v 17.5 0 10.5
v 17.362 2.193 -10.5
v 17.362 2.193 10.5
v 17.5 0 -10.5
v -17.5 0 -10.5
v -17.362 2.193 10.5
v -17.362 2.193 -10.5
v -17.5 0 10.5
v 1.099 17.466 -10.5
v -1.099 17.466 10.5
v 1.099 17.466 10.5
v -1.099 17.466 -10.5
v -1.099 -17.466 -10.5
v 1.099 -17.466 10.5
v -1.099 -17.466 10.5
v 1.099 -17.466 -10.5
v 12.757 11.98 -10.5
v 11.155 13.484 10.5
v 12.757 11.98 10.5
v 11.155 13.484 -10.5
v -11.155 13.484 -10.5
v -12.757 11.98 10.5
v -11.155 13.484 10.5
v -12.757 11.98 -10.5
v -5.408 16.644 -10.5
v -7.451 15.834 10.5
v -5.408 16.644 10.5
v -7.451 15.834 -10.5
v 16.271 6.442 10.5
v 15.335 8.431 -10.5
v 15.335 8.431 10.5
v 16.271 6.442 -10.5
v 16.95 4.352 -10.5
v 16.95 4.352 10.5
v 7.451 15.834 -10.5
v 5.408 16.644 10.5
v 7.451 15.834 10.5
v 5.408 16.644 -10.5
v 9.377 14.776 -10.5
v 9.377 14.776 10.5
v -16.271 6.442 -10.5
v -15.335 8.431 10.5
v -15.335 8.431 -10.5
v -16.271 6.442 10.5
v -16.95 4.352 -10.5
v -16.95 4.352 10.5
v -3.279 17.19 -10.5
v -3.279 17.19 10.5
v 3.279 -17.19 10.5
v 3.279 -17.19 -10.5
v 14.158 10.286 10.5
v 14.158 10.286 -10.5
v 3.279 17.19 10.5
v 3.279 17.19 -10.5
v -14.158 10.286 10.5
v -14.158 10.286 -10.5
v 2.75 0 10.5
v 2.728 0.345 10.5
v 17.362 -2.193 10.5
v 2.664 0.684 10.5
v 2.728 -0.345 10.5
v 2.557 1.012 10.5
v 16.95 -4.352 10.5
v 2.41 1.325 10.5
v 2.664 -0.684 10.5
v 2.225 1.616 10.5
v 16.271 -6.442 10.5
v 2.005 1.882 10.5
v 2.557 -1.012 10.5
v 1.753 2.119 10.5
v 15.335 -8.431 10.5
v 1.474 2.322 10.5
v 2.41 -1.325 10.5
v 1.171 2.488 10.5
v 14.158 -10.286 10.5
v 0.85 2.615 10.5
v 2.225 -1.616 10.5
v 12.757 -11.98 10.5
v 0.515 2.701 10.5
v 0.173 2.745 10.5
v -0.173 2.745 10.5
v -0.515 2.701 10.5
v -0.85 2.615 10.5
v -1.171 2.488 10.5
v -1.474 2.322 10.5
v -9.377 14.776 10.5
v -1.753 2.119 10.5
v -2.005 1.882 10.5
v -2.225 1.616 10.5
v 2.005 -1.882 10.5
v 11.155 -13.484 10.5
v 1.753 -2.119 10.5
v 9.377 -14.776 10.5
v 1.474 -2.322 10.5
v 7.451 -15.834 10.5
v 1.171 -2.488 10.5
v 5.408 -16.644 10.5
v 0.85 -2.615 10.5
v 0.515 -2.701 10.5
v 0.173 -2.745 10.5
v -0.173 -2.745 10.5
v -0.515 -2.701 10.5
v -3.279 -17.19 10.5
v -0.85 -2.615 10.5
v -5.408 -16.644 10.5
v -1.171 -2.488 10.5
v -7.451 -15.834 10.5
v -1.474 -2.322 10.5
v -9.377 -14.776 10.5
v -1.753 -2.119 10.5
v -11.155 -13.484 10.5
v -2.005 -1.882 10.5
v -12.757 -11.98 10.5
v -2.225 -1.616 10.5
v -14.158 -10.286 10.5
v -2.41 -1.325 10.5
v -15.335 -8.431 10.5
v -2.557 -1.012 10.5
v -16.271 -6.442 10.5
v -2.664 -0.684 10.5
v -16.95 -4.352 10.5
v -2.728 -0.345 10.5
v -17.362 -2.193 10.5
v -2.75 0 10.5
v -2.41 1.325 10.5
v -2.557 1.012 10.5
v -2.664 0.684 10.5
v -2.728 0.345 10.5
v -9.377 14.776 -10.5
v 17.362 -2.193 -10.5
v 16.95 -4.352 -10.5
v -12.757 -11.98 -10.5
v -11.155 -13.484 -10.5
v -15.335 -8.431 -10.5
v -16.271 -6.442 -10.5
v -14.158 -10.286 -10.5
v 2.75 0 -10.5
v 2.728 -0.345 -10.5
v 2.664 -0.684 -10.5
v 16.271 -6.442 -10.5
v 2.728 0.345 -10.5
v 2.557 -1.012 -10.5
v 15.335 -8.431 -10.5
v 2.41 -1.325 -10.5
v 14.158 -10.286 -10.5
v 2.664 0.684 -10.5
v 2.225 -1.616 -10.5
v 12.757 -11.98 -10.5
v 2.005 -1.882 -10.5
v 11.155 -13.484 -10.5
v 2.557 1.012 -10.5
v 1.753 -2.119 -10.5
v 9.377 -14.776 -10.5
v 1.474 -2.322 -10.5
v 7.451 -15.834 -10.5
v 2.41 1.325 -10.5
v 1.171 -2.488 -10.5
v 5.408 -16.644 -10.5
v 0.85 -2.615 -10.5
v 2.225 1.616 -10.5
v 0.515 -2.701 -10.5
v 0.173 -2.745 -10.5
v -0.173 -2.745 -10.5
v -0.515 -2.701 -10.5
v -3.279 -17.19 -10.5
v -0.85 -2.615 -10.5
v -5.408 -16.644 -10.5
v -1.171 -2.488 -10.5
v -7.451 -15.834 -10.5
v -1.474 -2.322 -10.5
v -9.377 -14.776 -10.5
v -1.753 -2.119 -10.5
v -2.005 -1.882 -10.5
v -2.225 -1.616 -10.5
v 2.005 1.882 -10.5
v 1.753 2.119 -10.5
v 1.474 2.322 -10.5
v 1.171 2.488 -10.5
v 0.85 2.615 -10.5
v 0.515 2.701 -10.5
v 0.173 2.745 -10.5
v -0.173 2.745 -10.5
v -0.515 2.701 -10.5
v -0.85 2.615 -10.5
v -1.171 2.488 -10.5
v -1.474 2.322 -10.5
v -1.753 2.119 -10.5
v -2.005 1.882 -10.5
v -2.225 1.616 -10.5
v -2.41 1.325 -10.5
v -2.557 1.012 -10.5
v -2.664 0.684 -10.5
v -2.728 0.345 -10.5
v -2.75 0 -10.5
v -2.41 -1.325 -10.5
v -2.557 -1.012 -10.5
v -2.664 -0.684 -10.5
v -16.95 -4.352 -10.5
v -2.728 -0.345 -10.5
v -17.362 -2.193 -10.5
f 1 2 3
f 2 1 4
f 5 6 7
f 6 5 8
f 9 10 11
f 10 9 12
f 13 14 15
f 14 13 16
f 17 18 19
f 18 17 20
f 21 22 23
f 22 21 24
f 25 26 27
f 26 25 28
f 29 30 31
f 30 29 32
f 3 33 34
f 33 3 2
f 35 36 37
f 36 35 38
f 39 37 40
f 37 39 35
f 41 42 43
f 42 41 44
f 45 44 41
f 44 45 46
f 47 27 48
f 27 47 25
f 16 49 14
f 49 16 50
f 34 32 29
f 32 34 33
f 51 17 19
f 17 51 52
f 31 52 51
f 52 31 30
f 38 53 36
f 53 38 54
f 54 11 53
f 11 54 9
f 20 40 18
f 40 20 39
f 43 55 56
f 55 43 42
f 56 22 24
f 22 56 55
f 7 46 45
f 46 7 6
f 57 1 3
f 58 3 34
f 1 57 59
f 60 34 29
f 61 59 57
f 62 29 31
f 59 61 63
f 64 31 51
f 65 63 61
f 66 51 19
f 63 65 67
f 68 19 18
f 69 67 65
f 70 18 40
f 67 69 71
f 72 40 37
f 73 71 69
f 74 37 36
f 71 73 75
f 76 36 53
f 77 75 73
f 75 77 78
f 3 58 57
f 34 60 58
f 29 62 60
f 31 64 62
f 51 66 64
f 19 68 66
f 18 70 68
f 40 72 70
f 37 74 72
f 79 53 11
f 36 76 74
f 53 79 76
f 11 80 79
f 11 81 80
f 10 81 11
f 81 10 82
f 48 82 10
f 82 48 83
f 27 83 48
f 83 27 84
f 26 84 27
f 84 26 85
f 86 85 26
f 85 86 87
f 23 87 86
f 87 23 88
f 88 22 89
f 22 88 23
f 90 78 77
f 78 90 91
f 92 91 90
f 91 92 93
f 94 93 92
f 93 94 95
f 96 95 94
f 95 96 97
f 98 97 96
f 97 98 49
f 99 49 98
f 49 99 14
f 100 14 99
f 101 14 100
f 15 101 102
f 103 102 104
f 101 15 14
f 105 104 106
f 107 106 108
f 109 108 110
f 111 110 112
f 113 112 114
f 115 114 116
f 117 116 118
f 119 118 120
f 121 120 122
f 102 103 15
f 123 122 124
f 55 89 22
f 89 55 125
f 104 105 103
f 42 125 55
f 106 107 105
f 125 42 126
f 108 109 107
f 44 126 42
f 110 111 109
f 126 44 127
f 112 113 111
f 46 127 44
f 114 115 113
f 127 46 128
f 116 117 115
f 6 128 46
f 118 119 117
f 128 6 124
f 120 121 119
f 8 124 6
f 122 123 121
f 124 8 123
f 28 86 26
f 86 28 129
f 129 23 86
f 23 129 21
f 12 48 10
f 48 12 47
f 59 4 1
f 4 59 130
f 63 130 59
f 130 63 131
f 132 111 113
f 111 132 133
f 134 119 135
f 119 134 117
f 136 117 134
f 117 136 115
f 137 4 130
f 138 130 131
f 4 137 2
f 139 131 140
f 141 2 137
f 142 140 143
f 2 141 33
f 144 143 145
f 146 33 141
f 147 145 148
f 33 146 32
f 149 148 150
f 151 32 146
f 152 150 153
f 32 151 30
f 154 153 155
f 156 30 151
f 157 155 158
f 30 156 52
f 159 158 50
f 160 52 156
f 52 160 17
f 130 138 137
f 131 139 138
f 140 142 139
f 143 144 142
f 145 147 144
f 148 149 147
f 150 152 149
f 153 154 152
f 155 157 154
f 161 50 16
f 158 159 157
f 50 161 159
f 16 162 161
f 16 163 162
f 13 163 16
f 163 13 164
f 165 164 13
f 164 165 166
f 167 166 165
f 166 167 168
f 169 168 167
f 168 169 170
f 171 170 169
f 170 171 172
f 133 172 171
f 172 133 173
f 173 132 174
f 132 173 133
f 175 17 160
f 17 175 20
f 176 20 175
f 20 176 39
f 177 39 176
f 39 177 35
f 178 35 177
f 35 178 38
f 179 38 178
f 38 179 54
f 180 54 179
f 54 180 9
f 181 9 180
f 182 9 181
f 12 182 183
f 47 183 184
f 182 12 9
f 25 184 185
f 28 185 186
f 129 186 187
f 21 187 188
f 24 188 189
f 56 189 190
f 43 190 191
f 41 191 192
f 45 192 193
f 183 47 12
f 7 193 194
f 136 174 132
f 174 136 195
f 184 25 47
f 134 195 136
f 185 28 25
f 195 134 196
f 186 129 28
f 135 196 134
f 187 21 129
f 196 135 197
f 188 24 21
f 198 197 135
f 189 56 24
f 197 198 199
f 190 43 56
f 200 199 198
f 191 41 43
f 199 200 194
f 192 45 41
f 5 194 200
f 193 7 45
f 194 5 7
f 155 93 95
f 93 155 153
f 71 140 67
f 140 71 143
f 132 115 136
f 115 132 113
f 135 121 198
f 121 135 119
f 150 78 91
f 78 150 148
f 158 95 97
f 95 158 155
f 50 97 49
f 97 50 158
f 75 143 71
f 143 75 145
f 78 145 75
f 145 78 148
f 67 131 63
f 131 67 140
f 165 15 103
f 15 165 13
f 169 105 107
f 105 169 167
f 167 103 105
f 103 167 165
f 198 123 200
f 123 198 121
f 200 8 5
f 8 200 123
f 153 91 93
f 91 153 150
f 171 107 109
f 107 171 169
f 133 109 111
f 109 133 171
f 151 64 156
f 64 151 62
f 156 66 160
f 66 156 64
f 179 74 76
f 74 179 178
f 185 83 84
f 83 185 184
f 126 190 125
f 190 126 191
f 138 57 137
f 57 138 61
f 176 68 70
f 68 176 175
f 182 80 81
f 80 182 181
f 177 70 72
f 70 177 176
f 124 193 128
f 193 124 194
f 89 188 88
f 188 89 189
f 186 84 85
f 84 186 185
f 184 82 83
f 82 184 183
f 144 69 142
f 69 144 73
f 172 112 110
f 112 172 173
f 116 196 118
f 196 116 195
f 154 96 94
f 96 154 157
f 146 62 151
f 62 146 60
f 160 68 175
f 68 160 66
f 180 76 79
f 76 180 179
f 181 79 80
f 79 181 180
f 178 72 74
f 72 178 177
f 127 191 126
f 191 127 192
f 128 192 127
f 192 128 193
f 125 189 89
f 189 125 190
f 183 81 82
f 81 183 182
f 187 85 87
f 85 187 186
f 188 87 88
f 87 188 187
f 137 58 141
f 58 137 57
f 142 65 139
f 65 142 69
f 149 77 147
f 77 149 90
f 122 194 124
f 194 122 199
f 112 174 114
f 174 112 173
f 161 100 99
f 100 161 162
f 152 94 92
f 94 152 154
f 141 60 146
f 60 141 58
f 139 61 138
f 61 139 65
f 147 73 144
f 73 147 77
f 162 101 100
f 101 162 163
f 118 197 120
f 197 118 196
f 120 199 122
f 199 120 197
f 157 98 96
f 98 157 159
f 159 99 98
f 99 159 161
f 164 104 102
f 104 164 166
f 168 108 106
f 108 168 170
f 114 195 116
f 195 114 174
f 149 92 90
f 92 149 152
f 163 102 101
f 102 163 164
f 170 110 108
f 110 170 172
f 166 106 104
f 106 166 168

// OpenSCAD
$fn = 50;


difference() {
	union() {
		translate(v = [0, 0, -10.5000000000]) {
			cylinder(h = 21, r = 17.5000000000);
		}
	}
	union() {
		translate(v = [0, 0, -100.0000000000]) {
			cylinder(h = 200, r = 2.7500000000);
		}
	}
}
